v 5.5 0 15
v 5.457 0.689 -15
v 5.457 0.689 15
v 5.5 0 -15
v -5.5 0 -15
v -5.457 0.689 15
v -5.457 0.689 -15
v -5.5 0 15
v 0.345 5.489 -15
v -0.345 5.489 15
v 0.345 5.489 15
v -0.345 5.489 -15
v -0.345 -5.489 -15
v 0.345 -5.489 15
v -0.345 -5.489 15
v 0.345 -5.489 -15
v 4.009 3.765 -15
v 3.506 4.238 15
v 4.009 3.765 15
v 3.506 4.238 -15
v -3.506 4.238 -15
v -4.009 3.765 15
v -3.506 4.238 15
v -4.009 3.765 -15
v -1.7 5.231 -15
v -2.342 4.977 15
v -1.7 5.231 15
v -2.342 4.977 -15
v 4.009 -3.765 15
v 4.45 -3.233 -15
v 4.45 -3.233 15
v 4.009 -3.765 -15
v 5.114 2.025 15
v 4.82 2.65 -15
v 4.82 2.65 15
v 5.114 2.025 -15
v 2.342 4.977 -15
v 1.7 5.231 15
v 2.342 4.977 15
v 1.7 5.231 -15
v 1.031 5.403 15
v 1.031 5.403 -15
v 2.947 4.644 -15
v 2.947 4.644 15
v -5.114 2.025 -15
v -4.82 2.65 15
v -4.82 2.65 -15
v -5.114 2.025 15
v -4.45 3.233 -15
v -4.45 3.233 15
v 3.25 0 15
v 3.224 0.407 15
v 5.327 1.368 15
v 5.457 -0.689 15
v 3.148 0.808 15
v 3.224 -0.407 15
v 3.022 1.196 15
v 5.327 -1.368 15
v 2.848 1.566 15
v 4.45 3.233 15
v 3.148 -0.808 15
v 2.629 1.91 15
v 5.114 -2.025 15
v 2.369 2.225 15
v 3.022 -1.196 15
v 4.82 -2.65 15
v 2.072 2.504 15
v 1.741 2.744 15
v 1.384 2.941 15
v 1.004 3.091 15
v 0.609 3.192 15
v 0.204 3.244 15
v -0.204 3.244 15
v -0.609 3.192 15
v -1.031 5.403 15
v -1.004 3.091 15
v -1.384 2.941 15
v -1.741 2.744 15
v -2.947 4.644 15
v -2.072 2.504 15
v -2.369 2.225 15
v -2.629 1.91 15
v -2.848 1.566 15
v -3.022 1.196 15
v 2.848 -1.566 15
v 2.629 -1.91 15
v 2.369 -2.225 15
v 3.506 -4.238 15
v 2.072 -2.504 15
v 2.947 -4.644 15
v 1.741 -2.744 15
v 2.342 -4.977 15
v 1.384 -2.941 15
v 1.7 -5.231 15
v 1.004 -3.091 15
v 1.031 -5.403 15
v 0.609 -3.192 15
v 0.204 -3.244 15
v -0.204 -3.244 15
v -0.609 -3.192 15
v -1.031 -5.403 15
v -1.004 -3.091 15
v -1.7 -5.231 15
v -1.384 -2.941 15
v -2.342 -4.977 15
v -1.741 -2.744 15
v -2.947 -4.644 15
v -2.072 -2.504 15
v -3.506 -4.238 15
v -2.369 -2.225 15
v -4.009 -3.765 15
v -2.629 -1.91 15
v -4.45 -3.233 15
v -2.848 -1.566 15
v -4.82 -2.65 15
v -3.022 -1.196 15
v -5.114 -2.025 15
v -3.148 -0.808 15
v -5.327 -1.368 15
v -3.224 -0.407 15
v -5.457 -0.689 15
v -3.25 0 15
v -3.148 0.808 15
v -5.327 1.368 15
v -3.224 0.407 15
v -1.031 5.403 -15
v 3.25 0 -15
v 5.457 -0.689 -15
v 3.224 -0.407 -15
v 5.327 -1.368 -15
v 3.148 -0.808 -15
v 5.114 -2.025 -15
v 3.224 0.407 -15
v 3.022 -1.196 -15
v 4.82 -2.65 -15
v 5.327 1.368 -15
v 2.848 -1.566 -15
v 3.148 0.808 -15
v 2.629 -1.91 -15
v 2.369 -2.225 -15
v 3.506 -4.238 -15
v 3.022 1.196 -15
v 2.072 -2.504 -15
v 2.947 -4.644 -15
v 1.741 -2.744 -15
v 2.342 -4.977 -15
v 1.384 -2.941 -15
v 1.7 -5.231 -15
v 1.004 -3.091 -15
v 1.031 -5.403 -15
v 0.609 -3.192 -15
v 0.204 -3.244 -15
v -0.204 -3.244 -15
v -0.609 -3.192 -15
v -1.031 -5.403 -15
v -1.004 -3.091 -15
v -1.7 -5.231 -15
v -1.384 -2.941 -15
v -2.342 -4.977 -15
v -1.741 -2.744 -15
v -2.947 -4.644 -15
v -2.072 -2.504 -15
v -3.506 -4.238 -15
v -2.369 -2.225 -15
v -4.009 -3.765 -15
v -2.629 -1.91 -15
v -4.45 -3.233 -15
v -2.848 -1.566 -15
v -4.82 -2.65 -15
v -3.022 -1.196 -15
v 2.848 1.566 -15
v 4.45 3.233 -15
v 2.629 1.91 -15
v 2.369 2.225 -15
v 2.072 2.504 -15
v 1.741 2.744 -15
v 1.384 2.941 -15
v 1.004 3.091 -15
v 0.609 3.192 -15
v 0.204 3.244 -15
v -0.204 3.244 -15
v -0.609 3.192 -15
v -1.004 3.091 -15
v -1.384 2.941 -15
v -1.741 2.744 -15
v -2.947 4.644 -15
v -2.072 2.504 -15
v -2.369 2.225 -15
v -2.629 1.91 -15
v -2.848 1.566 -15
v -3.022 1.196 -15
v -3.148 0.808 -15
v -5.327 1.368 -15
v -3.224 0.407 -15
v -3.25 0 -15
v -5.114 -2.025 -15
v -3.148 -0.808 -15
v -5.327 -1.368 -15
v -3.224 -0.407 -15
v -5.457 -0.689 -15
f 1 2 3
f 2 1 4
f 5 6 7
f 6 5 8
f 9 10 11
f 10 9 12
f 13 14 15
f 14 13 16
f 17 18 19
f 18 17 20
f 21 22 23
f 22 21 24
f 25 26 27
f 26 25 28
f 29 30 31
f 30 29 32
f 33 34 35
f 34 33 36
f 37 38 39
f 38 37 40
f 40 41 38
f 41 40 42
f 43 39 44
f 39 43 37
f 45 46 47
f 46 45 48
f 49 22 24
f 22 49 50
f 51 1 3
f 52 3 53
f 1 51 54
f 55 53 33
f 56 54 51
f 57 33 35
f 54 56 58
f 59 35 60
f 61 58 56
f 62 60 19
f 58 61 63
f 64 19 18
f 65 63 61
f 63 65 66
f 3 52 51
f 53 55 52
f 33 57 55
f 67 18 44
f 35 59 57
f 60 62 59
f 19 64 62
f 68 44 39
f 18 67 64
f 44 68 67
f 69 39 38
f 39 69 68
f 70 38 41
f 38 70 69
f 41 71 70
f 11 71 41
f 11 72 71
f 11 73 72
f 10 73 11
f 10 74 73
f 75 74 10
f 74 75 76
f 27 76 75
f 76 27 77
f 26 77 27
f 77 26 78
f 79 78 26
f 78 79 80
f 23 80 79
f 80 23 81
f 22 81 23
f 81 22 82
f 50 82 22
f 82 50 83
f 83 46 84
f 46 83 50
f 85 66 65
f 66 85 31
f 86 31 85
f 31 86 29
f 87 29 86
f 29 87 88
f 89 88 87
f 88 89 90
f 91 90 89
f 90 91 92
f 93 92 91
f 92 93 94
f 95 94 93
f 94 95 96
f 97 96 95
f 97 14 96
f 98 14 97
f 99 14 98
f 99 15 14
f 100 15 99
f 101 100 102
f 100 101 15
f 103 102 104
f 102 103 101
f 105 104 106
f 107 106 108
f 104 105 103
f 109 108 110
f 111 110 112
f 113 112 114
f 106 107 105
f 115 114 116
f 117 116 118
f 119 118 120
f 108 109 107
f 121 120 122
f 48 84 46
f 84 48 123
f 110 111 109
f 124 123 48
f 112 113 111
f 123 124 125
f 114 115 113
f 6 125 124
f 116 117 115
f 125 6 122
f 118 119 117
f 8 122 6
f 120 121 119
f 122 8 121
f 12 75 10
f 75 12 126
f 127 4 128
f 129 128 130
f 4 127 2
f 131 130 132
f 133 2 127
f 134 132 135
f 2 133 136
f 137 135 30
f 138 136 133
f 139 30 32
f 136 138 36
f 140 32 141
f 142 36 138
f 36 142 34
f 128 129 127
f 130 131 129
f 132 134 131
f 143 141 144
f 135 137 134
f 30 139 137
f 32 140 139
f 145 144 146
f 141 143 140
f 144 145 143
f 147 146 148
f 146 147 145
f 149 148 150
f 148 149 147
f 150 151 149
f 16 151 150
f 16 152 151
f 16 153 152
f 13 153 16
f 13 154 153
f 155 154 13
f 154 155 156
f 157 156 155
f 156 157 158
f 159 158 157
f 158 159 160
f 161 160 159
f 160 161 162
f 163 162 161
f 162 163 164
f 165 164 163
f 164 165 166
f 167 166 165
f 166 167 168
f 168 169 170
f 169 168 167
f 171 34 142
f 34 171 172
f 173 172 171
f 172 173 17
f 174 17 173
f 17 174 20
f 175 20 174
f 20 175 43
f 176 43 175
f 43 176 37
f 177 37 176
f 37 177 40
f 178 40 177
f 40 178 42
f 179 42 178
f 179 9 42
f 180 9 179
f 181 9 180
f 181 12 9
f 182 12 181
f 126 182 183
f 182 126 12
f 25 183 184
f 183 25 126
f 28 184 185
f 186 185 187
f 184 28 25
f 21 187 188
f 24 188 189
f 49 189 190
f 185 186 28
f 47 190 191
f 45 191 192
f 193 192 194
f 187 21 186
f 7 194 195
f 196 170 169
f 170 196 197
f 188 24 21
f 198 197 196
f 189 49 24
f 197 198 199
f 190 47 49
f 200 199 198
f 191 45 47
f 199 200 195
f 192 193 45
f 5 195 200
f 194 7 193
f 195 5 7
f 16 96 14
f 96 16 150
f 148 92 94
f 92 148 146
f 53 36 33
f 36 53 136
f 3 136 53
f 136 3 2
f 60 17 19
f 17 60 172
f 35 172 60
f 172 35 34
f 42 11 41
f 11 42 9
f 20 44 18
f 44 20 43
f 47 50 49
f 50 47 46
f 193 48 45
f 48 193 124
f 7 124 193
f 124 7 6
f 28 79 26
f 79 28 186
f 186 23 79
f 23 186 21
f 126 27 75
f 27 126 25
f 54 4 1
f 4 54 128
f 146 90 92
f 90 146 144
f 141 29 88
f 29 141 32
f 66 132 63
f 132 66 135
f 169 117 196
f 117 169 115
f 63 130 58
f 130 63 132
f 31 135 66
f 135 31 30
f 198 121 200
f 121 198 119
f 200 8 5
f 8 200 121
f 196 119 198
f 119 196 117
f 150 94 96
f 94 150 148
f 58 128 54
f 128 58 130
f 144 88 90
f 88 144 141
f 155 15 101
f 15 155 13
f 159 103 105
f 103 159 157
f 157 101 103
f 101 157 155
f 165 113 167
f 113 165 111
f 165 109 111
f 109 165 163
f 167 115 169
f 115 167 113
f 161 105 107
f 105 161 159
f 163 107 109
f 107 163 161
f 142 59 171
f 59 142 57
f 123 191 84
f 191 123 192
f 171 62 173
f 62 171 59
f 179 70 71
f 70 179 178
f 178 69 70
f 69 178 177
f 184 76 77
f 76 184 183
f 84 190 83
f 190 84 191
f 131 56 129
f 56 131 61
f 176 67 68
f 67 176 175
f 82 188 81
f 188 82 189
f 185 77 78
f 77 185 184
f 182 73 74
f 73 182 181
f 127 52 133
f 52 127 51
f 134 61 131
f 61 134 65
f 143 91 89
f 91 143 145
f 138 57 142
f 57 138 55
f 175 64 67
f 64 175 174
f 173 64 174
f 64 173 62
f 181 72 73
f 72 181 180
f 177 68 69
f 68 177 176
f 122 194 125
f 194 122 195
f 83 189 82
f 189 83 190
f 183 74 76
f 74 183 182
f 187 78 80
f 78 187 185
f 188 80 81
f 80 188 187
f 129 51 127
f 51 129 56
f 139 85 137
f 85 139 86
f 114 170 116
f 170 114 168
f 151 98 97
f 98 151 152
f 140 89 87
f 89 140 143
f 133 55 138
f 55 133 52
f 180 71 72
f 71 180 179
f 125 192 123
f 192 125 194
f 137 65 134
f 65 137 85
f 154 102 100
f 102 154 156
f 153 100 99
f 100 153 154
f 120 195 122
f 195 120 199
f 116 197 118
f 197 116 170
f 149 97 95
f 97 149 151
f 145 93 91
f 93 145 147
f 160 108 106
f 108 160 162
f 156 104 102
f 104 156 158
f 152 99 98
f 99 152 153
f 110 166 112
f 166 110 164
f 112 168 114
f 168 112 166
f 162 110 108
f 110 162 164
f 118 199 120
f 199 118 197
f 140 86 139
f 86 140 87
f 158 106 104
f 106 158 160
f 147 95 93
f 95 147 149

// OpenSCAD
$fn = 50;


difference() {
	union() {
		translate(v = [0, 0, -15.0000000000]) {
			cylinder(h = 30, r = 5.5000000000);
		}
	}
	union() {
		translate(v = [0, 0, -100.0000000000]) {
			cylinder(h = 200, r = 3.2500000000);
		}
	}
}
